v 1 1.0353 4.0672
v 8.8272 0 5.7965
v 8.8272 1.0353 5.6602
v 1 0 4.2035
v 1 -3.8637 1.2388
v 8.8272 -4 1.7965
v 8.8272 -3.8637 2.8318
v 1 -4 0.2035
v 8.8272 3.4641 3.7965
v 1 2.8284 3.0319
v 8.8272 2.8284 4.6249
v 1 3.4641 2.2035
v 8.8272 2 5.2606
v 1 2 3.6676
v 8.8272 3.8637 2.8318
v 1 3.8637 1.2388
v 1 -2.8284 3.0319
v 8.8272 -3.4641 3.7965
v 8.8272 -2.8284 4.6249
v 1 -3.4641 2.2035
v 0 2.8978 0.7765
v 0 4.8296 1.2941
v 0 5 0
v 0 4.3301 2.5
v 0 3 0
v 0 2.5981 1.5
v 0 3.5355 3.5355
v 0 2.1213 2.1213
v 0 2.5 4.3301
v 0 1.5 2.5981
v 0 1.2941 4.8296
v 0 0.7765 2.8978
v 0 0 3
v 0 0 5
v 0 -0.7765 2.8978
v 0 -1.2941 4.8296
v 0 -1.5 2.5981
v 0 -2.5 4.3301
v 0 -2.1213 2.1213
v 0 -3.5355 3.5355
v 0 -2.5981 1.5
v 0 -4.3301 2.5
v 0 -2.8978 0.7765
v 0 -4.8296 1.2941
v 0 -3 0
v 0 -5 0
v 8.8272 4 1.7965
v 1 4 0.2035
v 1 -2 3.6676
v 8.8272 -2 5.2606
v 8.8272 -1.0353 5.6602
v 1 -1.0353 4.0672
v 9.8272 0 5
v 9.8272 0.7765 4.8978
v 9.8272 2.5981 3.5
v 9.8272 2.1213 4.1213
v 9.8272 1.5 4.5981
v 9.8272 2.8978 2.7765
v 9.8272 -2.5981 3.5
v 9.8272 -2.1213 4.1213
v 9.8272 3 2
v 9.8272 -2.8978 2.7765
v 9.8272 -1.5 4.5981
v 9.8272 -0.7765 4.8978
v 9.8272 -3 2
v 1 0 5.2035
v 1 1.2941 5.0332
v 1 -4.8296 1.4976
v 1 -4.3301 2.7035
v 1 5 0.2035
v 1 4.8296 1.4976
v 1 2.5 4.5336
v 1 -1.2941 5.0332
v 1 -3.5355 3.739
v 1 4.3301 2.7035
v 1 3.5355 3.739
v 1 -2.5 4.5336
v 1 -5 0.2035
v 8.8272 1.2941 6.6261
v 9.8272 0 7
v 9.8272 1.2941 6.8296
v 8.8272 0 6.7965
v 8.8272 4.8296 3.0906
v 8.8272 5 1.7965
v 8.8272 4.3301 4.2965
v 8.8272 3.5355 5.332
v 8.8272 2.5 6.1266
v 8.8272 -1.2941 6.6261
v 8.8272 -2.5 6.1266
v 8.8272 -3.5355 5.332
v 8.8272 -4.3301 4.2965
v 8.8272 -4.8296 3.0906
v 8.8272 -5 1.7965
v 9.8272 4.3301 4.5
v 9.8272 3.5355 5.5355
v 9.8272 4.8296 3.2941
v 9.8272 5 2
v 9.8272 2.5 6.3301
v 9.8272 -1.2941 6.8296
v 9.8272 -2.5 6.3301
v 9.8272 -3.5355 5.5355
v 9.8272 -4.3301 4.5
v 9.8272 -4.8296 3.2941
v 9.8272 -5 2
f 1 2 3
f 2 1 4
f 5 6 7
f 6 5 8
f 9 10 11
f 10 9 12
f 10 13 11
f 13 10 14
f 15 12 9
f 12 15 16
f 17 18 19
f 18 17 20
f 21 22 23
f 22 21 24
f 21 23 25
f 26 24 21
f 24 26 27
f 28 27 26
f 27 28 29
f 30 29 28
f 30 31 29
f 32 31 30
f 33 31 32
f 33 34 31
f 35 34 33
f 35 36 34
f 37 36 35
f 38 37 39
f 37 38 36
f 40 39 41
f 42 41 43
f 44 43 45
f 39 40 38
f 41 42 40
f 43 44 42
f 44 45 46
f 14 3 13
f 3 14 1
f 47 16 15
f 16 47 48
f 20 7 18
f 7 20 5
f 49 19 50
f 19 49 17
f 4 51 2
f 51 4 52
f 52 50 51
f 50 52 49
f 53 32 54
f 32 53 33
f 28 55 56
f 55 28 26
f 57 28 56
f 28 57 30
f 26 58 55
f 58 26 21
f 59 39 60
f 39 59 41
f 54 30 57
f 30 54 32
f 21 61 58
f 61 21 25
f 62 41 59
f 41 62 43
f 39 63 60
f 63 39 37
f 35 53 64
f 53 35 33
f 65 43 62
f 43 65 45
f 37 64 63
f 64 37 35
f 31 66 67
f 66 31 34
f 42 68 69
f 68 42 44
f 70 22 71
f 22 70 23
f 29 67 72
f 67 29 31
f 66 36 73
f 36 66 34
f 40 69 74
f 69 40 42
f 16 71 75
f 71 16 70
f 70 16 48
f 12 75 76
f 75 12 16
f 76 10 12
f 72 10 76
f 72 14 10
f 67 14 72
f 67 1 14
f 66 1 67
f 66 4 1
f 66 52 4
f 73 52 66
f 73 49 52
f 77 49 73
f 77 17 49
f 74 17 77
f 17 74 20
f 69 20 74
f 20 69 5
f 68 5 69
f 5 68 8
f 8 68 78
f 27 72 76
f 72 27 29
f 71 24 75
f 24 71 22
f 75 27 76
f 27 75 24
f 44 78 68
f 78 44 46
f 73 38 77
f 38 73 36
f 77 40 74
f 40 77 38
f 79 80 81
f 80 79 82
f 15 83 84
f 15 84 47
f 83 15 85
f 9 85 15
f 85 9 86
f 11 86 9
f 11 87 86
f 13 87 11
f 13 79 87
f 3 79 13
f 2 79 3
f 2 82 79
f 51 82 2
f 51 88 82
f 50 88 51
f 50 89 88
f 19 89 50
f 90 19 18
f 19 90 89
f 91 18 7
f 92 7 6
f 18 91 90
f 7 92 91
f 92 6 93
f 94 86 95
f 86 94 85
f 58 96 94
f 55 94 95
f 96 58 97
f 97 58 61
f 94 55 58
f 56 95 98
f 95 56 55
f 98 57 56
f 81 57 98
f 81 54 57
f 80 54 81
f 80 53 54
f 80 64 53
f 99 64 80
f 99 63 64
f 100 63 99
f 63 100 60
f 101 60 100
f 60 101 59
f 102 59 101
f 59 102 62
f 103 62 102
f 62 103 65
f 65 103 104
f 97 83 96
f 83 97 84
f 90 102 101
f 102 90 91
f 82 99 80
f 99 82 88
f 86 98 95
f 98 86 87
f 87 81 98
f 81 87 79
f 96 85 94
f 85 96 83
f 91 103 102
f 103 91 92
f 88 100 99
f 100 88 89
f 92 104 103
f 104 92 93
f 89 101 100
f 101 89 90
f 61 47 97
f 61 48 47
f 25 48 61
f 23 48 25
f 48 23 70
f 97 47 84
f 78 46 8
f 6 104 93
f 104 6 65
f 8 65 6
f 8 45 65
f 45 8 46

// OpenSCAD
// file: ../build_environments.scad
// build_environments.scad: modules to build level sections
//

module pool(diameter=10.0, wall_height=2.0, step_width=3.0, connections=[])
{
    difference() {
        union() {
        difference() {
            cylinder(h=0.5,r1=diameter+step_width,r2=diameter+step_width,$fn=48);
            translate([0,0,-0.1])
                cylinder(h=0.7,r1=diameter,r2=diameter,$fn=48);
        }
        difference() {
            cylinder(h=wall_height,r1=diameter+step_width+1.0,r2=diameter+step_width+1.0,$fn=48);
            translate([0,0,-0.1])
                cylinder(h=wall_height+0.2,r1=diameter+step_width,r2=diameter+step_width,$fn=48);
        }
        }
    
        for (c = connections)
        {
            rotate([0,90,0]) {
                angle = atan2(c[1],c[0]);
                rotate([-angle,0,0]) {
                    cylinder(h=diameter+5.0,r1=c[2],r2=c[2],$fn=48);
                }
            }
        }
    }
}

module straight(length=10.0, width=2.0, dy1=0.0, dy2=0.0, dz=0.0)
{
    dims = [0, 0, 0, 0, 0, (dz/length)];
    matrix = [
        [ 1, dims[0], dims[1], 0 ],
        [ dims[2], 1, dims[4], 0 ],
        [ dims[5], dims[3], 1, 0 ],
        [ 0, 0, 0, 1 ]
    ];
    multmatrix(matrix)
    difference() {
        translate([dy1,0,0])
        union() {
            rotate([0,90,0]) {
                difference() {
                    cylinder(h=(length-dy1-dy2),r1=width+1.0,r2=width+1.0,$fn=24);
                    translate([0,0,-0.1])
                        cylinder(h=(length-dy1-dy2+0.2),r1=width,r2=width,$fn=24);
                }
                difference() {
                    cylinder(h=1.0,r1=width+2.0,r2=width+2.0,$fn=24);
                    translate([0,0,-0.1])
                        cylinder(h=1.2,r1=width,r2=width,$fn=24);
                }
                translate([0,0,(length-dy1-dy2)-1.0]) {
                    difference() {
                        cylinder(h=1.0,r1=width+2.0,r2=width+2.0,$fn=24);
                        translate([0,0,-0.1])
                            cylinder(h=1.2,r1=width,r2=width,$fn=24);
                    }
                }
            }
        }
        translate([0,0,-(2*width+4.0)/2])
            cube([3*length,3*length,2*width+4.0],center=true);
    }
}

module curve(p0=[0,0], center=[0,0], dir=1, angle=0.0, width=2.0)
{
    radius = sqrt((p0[0]-center[0])*(p0[0]-center[0]) + (p0[1]-center[1])*(p0[1]-center[1]));
    if (dir == 0) {
        difference() {
            rotate([0,0,-90])
            difference() {
                rotate_extrude(angle = angle, convexity = 10, $fn=32)
                    translate([radius, 0, 0])
                        circle(r = width+1.0,$fn=24);
                rotate([0,0,-1.0])
                    rotate_extrude(angle = angle+2.0, convexity = 10, $fn=32)
                        translate([radius, 0, 0])
                            circle(r = width,$fn=24);
            }
            translate([0,0,-(2*width+4.0)/2])
                cube([5*radius,5*radius,2*width+4.0],center=true);
        }
    }
    else {
        difference() {
            rotate([0,0,90])
            difference() {
                rotate_extrude(angle = -angle, convexity = 10, $fn=32)
                    translate([radius, 0, 0])
                        circle(r = width+1.0,$fn=24);
                rotate([0,0,1.0])
                    rotate_extrude(angle = -angle-2.0, convexity = 10, $fn=32)
                        translate([radius, 0, 0])
                            circle(r = width,$fn=24);
            }
            translate([0,0,-(2*width+4.0)/2])
                cube([5*radius,5*radius,2*width+4.0],center=true);
        }
    }

}

// test pool
//pool(diameter=12.0000, wall_height=3.0000, step_width=3.0000, connections=[[0.0000,-26.0000,2.0000], [23.6074,0.0000,2.0000]]);

// test straight, slope
//straight(length=26.0000, width=2.0000, dy1=11.8322, dy2=6.7082, dz=0.0000);
//straight(length=29.1549, width=12.0000, dy1=0.0000, dy2=0.0000, dz=-15.0000);

// test curve
//curve(p0=[23.6074, 0.0000], center=[23.6074, 5.0000], dir=0, angle=60.1011, width=2.0000);
//curve(p0=[33.6426, 12.4219], center=[37.9771, 9.9295], dir=1, angle=120.4627, width=2.0000);
// main file
use <../build_environments.scad>;
straight(length=9.8272, width=3.0000, dy1=0.0000, dy2=0.0000, dz=2.0000);
